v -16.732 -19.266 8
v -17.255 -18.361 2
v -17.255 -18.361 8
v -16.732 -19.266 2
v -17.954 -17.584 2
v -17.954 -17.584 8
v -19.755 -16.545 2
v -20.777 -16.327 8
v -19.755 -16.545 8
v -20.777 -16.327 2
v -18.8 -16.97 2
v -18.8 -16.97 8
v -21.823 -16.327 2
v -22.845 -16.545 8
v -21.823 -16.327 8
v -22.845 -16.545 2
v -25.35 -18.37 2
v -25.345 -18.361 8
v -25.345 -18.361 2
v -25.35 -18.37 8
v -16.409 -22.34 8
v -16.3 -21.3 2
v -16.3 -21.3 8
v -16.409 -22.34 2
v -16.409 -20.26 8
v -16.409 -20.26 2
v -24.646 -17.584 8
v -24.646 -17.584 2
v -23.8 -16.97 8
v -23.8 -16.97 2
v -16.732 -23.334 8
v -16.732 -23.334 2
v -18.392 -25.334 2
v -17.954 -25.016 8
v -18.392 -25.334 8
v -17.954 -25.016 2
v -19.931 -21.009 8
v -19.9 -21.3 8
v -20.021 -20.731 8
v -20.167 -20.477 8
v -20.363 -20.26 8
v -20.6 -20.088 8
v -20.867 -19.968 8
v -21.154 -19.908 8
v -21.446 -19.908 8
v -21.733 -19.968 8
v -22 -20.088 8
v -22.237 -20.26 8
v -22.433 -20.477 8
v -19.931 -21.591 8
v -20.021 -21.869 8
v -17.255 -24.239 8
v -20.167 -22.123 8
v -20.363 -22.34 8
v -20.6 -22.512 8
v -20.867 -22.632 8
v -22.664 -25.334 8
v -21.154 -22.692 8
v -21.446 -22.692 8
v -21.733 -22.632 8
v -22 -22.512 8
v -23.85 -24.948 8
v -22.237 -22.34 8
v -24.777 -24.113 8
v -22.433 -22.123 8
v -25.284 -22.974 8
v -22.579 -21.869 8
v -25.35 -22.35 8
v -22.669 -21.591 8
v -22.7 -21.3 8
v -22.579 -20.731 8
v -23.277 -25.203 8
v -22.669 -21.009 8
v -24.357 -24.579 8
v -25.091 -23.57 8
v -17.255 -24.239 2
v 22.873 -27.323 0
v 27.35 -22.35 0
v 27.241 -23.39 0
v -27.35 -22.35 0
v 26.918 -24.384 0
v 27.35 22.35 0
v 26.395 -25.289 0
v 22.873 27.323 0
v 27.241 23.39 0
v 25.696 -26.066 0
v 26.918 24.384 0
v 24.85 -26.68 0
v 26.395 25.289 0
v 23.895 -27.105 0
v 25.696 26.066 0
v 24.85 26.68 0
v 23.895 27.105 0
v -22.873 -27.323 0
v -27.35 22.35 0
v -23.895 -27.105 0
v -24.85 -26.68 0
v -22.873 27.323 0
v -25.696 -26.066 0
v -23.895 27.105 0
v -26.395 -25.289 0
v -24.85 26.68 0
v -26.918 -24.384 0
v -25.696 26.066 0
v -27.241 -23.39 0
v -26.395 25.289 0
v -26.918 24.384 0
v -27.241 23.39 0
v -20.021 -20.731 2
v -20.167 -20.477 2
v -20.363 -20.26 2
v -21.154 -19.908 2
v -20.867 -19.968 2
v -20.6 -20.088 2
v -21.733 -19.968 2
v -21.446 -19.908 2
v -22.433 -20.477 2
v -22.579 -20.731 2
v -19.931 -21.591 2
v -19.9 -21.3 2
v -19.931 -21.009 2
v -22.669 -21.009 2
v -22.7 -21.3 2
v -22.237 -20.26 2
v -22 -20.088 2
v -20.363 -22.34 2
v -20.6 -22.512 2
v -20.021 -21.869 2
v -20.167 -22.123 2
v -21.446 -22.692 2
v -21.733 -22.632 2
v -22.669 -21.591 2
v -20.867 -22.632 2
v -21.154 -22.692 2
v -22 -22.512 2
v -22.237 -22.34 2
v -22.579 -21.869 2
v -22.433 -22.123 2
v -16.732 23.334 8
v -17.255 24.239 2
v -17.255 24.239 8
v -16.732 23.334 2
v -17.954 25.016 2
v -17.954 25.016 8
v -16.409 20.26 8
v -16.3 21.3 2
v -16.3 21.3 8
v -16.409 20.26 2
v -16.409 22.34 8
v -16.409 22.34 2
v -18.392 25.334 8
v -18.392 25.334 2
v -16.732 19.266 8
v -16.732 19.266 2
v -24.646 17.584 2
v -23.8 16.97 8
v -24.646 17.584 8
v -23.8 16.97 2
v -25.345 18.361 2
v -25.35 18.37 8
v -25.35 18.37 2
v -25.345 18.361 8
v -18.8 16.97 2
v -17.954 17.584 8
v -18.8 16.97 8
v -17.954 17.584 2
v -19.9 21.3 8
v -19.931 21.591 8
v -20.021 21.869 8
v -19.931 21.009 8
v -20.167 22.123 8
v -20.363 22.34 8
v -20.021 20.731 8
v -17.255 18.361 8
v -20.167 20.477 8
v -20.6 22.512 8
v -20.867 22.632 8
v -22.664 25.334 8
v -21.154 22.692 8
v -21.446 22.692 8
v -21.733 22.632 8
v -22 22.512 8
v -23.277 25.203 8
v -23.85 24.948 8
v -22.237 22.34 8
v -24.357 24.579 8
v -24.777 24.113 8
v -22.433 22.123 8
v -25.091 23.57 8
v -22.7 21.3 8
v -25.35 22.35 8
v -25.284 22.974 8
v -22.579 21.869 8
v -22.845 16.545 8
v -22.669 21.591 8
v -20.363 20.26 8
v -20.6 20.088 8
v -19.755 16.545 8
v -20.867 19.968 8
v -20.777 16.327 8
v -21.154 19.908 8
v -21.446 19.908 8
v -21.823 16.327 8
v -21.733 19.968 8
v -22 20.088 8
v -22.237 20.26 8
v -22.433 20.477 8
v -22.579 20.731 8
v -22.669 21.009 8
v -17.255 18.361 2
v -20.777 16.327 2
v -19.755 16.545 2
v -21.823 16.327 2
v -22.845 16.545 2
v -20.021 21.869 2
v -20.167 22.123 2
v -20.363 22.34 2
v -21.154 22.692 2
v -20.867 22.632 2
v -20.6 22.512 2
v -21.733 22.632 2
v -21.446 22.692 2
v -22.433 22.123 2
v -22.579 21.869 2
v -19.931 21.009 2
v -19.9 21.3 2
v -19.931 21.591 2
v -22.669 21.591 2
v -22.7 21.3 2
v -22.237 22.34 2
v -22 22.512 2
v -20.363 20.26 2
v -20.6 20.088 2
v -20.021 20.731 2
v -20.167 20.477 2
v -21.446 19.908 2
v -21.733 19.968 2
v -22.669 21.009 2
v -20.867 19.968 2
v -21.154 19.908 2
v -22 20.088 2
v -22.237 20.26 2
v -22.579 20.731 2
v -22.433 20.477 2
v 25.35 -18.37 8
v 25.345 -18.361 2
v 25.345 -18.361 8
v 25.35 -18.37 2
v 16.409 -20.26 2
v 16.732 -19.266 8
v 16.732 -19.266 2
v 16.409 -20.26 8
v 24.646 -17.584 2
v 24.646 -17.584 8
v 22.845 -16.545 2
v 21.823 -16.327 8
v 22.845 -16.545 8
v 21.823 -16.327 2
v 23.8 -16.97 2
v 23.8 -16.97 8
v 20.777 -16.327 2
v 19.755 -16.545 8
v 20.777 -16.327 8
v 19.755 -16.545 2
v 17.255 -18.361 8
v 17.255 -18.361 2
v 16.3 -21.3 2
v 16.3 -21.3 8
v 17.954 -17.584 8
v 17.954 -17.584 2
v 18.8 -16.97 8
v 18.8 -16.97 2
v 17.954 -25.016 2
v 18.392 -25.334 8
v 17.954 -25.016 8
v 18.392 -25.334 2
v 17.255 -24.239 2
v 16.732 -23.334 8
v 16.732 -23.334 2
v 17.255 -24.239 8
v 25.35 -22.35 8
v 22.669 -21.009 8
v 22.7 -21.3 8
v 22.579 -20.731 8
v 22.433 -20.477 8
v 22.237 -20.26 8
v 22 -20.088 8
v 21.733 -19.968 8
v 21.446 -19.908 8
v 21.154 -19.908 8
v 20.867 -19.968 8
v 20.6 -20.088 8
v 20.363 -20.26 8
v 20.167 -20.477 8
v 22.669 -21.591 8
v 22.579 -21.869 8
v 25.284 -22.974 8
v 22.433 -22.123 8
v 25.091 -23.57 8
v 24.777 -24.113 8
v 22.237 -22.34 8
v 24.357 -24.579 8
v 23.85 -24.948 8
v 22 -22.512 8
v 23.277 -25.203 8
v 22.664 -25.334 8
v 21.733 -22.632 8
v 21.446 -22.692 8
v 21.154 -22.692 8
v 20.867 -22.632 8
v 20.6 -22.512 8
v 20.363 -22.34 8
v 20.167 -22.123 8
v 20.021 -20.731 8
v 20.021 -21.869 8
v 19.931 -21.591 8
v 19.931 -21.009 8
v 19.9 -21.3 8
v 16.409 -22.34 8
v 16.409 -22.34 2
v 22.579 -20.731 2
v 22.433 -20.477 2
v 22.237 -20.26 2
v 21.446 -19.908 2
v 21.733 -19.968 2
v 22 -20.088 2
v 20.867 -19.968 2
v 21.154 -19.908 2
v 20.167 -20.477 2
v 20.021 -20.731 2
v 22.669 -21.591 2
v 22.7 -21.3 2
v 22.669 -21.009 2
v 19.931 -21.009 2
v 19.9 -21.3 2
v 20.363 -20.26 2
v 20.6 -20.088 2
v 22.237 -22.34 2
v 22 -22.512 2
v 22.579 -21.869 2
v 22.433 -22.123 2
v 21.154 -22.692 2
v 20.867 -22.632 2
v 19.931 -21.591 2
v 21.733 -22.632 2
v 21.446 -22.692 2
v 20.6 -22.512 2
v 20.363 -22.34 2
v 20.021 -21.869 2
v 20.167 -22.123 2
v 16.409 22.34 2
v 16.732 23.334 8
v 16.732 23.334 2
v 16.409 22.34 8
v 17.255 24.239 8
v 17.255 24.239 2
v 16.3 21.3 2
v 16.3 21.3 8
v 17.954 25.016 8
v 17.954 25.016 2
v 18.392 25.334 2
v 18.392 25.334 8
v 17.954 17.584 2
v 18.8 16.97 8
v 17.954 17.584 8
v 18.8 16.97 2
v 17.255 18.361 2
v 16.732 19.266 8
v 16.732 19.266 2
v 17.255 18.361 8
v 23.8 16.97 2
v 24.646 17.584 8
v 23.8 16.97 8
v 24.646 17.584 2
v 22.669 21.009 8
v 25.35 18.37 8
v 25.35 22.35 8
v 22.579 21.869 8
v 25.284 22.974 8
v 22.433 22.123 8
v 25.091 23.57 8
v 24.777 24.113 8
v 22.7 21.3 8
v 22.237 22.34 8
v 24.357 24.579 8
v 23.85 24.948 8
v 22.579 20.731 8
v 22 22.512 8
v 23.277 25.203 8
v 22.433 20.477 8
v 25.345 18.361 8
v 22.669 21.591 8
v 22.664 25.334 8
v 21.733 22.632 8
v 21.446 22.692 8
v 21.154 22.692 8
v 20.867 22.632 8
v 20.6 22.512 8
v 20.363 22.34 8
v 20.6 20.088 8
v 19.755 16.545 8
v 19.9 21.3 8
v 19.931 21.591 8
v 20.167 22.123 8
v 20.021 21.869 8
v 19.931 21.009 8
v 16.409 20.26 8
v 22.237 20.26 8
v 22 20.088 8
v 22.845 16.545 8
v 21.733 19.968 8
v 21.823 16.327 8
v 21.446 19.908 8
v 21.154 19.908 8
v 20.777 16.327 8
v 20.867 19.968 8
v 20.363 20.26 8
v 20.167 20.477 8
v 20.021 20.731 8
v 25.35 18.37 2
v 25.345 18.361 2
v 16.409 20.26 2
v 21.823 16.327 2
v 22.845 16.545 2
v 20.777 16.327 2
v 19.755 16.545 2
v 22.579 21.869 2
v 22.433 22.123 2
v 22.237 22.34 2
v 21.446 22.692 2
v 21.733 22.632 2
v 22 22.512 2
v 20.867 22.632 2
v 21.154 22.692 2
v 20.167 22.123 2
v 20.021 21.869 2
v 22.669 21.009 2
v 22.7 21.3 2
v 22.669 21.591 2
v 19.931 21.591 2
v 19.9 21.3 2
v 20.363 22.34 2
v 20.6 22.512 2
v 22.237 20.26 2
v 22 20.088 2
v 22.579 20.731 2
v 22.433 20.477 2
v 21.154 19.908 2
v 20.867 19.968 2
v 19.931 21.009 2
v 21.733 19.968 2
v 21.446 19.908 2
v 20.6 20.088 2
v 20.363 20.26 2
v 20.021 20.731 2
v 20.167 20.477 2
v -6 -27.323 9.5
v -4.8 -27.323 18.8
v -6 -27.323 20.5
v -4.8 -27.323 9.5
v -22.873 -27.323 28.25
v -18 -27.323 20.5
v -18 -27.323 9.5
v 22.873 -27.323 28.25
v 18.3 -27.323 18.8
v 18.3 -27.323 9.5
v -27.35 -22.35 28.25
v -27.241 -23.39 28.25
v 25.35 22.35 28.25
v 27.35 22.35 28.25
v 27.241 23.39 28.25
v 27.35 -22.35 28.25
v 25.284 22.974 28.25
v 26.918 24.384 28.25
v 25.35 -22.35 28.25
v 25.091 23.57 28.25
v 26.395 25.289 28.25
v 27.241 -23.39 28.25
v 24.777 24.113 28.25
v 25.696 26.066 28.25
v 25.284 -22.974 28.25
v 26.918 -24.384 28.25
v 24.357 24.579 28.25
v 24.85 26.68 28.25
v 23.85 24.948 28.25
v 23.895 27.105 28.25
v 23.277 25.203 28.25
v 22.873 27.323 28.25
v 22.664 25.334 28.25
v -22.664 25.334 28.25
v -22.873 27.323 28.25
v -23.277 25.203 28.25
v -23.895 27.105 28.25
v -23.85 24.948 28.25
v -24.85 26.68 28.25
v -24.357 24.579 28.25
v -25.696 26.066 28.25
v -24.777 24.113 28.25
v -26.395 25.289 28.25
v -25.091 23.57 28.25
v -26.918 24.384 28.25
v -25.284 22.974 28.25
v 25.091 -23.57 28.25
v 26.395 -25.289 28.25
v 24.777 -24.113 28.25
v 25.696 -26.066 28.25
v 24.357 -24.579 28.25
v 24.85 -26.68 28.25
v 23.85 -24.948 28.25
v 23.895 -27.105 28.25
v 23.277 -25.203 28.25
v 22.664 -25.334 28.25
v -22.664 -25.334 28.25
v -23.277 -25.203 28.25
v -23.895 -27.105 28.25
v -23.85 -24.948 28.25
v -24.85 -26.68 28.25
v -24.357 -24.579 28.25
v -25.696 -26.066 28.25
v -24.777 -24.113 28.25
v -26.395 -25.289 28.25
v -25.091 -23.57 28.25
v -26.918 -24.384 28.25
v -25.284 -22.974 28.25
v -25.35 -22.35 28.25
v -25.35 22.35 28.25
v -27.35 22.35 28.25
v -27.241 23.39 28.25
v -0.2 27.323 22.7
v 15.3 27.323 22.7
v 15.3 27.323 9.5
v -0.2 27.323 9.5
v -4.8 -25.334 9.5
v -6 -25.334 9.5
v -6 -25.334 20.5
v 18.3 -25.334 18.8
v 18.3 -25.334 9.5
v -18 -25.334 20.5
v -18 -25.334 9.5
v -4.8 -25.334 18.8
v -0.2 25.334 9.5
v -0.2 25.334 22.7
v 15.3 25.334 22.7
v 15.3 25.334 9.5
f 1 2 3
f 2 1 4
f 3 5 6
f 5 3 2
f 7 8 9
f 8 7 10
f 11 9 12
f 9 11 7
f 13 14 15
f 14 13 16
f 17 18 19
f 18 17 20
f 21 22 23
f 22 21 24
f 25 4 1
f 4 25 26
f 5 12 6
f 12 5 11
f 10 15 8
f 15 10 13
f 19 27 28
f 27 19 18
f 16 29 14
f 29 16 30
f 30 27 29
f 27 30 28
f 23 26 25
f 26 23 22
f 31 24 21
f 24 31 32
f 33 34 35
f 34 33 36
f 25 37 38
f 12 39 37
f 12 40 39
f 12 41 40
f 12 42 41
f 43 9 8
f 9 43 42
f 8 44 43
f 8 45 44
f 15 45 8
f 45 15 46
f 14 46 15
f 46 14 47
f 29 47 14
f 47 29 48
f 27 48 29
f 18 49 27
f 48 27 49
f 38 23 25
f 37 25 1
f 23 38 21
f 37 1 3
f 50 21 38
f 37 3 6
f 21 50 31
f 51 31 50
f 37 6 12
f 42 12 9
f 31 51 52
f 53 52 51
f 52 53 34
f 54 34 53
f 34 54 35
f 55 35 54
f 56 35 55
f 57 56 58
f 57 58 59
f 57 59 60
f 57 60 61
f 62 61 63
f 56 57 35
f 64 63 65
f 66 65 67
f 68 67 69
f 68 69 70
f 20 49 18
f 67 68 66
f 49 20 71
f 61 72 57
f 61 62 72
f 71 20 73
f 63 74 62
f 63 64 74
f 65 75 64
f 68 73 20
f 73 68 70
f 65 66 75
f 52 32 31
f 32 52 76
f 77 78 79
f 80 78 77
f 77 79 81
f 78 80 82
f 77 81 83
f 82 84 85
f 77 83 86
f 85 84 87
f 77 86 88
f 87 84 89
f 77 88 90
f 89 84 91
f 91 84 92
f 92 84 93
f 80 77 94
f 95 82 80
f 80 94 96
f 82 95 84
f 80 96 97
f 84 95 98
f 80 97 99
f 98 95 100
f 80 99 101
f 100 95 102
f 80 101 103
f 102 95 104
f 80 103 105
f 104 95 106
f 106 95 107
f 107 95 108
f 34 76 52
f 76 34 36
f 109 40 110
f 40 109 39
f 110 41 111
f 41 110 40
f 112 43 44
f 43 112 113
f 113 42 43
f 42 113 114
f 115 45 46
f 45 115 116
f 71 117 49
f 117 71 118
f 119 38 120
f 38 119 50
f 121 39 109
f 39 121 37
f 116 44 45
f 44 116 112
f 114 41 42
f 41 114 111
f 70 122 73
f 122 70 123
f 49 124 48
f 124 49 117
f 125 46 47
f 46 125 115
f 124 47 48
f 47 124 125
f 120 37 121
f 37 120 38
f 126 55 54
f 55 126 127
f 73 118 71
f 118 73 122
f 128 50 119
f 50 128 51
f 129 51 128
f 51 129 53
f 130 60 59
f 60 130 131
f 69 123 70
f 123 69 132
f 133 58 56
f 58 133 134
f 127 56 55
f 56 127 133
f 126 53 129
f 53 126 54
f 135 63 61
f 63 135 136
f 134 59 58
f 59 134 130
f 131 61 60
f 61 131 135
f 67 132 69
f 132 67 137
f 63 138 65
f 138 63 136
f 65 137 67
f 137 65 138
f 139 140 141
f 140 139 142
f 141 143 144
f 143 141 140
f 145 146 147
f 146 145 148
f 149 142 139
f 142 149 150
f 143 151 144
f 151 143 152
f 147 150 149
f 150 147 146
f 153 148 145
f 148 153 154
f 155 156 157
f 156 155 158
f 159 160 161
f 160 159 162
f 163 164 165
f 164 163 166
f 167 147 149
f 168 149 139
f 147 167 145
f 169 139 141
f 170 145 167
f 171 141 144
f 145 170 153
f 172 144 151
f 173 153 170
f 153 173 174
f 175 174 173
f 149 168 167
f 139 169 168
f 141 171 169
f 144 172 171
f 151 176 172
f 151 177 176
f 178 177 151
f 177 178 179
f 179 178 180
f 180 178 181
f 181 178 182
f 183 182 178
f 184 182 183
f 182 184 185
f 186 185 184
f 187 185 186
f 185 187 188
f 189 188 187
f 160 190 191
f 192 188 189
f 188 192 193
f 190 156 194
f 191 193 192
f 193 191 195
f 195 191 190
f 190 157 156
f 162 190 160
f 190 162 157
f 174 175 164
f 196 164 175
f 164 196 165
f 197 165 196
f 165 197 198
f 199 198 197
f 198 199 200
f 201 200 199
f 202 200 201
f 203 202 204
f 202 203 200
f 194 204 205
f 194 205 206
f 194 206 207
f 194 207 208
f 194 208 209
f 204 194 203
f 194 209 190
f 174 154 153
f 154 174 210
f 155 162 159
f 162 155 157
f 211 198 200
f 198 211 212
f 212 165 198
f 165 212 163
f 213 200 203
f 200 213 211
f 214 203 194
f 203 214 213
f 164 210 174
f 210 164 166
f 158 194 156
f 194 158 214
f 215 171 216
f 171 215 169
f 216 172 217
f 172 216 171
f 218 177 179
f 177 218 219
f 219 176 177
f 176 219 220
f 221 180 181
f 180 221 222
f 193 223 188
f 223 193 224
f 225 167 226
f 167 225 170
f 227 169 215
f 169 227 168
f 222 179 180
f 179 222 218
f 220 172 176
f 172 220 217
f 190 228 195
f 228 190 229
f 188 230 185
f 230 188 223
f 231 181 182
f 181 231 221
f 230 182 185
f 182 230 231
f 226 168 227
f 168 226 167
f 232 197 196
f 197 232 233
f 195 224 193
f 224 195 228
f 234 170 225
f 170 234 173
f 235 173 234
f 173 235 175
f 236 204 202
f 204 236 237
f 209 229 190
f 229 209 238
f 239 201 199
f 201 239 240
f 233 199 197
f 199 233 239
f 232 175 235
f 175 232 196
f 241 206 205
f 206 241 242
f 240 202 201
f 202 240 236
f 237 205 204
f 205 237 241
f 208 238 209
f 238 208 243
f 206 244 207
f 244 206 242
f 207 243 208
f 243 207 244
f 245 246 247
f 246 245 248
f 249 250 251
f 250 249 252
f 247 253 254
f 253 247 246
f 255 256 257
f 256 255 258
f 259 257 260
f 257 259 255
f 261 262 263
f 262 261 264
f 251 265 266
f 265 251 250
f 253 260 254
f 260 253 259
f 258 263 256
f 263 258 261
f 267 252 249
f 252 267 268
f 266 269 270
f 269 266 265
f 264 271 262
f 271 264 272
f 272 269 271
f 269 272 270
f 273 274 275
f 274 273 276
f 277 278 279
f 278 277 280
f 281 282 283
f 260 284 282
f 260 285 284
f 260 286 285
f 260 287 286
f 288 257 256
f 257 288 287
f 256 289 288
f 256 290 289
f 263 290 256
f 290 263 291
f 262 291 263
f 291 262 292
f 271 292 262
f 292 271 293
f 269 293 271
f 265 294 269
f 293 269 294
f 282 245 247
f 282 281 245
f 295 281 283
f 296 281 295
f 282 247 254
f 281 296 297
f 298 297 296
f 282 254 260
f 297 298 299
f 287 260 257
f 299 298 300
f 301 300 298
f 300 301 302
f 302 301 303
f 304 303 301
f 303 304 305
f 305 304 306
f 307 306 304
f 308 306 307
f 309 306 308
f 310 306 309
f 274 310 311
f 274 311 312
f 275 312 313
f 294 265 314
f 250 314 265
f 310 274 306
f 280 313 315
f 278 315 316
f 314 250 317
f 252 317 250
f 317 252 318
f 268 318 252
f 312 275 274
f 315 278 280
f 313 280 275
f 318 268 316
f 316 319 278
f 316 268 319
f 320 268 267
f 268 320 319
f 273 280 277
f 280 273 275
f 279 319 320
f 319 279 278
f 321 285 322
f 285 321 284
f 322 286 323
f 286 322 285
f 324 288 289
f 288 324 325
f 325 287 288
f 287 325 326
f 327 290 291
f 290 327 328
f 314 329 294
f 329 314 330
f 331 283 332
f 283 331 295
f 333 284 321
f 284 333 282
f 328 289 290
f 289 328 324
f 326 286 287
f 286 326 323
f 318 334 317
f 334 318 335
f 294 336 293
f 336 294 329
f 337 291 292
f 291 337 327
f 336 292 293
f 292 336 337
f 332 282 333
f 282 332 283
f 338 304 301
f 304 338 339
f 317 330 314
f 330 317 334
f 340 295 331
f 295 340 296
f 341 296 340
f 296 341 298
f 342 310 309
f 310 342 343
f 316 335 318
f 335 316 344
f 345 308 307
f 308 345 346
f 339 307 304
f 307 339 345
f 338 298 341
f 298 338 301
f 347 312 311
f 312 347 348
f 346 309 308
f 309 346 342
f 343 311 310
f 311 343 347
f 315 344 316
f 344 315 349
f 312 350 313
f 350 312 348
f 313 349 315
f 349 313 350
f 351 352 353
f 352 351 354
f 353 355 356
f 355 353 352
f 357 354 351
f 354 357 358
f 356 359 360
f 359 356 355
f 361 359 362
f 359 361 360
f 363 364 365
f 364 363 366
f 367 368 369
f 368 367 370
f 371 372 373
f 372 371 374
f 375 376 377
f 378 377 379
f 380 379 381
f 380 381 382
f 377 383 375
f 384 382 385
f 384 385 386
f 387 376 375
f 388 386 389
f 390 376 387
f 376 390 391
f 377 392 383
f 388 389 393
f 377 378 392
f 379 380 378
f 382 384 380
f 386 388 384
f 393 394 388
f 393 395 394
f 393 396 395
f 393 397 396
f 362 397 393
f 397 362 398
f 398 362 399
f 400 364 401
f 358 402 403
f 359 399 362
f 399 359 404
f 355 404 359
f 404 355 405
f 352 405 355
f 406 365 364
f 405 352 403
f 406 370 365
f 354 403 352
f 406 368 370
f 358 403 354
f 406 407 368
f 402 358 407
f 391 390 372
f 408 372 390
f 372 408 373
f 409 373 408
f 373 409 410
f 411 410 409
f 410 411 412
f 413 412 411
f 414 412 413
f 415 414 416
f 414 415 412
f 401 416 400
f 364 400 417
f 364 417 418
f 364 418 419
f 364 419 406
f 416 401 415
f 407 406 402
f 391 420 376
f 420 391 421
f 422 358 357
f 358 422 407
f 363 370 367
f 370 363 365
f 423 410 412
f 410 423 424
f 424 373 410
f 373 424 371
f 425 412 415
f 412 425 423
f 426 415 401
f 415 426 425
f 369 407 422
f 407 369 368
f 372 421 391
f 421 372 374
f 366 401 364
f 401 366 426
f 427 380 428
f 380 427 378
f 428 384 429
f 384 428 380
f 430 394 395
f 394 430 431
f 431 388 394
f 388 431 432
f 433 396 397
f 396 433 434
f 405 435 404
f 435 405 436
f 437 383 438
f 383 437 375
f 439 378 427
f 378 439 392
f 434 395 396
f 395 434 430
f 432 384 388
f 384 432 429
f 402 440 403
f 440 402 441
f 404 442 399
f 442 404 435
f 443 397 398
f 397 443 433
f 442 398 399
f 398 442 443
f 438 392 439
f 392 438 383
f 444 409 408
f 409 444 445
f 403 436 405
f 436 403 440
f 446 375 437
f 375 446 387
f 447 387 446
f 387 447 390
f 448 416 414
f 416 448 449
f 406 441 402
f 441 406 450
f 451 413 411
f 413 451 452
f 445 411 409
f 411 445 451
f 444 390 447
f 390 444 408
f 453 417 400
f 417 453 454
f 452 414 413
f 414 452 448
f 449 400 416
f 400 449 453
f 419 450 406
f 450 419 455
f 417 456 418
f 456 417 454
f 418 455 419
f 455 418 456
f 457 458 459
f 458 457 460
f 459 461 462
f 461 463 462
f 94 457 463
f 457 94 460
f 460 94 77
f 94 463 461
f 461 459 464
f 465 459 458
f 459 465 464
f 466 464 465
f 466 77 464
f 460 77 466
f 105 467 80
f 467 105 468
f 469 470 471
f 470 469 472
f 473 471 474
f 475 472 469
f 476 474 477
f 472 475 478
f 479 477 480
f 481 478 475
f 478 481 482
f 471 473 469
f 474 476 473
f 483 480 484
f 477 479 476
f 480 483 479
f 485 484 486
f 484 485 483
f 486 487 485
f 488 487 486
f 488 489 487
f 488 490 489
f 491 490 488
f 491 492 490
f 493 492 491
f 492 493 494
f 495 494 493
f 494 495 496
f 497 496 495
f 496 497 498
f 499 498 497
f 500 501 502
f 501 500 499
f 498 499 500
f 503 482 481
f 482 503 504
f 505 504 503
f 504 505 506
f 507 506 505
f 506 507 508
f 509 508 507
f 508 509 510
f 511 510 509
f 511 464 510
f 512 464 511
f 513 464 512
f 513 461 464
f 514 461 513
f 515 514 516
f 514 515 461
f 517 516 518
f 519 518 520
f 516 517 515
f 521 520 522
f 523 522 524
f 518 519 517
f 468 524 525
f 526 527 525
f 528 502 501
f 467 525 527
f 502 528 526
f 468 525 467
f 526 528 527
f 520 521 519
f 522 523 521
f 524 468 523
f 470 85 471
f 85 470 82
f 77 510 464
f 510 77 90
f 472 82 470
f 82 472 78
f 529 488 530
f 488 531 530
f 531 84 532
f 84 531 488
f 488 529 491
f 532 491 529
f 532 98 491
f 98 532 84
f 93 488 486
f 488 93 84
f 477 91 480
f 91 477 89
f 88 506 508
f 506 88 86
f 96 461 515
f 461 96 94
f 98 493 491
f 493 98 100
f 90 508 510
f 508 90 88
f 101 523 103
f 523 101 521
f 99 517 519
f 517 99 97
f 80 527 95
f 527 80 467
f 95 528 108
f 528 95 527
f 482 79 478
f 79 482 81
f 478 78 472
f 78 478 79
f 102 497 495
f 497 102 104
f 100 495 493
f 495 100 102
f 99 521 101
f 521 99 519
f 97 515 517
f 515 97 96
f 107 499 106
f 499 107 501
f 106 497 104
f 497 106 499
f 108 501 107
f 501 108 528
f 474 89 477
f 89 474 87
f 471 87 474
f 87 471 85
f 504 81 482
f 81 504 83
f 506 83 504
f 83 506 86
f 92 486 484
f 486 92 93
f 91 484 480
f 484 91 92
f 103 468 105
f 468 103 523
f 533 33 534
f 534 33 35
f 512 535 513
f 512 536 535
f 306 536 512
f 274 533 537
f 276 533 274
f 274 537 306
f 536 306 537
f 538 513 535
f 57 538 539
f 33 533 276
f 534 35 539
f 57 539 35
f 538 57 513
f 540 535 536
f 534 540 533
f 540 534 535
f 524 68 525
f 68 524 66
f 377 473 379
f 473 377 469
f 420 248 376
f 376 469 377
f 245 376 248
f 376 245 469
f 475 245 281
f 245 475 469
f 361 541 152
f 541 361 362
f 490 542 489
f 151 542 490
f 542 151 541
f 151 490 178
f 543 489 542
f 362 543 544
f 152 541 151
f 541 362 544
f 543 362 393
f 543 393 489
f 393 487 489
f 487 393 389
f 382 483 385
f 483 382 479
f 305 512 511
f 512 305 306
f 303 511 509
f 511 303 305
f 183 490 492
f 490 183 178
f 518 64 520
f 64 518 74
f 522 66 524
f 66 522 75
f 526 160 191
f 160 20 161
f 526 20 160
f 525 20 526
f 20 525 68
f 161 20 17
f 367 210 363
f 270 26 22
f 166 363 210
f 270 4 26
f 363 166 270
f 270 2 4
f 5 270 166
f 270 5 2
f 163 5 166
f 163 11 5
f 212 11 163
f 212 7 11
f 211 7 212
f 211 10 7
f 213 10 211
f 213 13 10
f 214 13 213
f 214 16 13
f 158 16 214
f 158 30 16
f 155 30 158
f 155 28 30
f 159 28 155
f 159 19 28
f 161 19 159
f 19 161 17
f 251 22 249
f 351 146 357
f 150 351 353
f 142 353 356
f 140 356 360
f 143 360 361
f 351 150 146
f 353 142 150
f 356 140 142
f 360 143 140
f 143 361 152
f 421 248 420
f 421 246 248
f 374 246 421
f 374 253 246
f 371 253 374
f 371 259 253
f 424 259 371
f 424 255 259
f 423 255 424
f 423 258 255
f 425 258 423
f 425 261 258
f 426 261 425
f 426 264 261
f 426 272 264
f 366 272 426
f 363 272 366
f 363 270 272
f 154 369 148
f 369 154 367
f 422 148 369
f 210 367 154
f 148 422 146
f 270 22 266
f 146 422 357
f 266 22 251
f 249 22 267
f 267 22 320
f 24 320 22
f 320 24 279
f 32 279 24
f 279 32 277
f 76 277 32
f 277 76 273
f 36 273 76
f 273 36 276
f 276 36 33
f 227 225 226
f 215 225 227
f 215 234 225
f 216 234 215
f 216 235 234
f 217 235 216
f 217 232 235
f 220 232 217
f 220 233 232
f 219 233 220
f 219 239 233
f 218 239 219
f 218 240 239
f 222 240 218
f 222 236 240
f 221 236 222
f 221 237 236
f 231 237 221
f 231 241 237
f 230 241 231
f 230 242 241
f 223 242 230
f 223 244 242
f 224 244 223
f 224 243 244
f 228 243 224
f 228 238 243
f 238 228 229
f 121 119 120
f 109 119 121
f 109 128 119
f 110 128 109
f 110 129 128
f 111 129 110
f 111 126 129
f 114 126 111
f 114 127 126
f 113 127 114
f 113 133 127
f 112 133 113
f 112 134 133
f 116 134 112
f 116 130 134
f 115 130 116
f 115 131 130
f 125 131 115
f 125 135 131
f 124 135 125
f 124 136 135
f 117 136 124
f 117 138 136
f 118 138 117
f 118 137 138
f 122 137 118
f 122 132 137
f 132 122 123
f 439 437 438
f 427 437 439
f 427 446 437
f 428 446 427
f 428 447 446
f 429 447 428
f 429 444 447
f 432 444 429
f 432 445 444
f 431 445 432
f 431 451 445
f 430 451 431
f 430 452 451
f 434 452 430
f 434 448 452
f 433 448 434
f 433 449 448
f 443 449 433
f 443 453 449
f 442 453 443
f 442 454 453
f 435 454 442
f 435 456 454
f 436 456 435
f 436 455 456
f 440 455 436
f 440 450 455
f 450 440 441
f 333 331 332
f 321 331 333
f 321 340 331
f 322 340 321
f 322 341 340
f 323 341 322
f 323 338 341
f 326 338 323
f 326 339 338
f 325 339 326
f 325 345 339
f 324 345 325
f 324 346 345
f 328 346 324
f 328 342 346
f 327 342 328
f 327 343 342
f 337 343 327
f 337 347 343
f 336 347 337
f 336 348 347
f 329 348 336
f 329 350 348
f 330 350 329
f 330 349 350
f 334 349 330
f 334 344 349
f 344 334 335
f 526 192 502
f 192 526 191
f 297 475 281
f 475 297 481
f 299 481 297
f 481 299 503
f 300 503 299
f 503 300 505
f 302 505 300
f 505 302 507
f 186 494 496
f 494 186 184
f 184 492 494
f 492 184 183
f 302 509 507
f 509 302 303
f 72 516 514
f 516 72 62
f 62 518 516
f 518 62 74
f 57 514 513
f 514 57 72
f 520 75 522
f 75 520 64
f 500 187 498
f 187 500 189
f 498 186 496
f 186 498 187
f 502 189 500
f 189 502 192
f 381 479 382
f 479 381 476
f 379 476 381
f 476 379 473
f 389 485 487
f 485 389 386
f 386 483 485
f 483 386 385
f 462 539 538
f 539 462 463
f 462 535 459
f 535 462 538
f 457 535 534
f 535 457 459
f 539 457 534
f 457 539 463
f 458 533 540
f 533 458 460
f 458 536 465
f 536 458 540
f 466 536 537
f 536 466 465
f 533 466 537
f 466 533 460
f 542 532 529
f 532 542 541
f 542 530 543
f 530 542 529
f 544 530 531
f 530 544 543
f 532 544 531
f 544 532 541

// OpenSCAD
PCB_size = 50;
PCB_thick = 1.5;
extraxy=0.7;
PCB_height = 8;
oah = 30-1.75;
wall = 2;

hole_dim = (PCB_size-2*4)/2+0.3; //shouldn't need the 0.3 but it seems to. 

difference(){
    translate([-PCB_size/2-wall-extraxy/2,-PCB_size/2-wall-extraxy/2,0])
        v_rounded_cube([PCB_size+2*wall+extraxy,PCB_size+2*wall+extraxy,oah] ,5);
    
    translate([-PCB_size/2-wall-extraxy/2,-PCB_size/2-wall-extraxy/2,0])
    translate([wall,wall,wall])
        v_rounded_cube([PCB_size+extraxy,PCB_size+extraxy,2*oah],3 );
    
    //USB cutout
    translate([-PCB_size/2+7,-6-PCB_size/2,PCB_height+PCB_thick])
    cube([12,12,11]);
    //molex cutout
    translate([-23.1+PCB_size/2-6.7,-6-PCB_size/2,PCB_height+PCB_thick])
    cube([23.1,10.3,9.3]);
    //rj45 cutout
    translate([-15.5+PCB_size/2-9.7,-6+PCB_size/2,PCB_height+PCB_thick])
    cube([15.5,10,13.2]);
}
for (ii = [-hole_dim,hole_dim]){
    for (jj = [-hole_dim,hole_dim]) {
        translate([ii,jj]) mount_hole(PCB_height);
    }
}

module mount_hole(h,$fn=30) {
    difference() {
        cylinder(r=5,h=h);
        cylinder(d=2.8,h=h);
    }
}

module v_rounded_cube(xyz,r,$fn=30) {
  z = xyz[2];
  y = xyz[1];
  x = xyz[0];
  translate([r,r])
  hull() {
    cylinder(h=z,r=r);
    translate([0,y-2*r])
    cylinder(h=z,r=r);
    translate([x-2*r,0])
    cylinder(h=z,r=r);
    translate([x-2*r,y-2*r])
    cylinder(h=z,r=r);
  }
}
